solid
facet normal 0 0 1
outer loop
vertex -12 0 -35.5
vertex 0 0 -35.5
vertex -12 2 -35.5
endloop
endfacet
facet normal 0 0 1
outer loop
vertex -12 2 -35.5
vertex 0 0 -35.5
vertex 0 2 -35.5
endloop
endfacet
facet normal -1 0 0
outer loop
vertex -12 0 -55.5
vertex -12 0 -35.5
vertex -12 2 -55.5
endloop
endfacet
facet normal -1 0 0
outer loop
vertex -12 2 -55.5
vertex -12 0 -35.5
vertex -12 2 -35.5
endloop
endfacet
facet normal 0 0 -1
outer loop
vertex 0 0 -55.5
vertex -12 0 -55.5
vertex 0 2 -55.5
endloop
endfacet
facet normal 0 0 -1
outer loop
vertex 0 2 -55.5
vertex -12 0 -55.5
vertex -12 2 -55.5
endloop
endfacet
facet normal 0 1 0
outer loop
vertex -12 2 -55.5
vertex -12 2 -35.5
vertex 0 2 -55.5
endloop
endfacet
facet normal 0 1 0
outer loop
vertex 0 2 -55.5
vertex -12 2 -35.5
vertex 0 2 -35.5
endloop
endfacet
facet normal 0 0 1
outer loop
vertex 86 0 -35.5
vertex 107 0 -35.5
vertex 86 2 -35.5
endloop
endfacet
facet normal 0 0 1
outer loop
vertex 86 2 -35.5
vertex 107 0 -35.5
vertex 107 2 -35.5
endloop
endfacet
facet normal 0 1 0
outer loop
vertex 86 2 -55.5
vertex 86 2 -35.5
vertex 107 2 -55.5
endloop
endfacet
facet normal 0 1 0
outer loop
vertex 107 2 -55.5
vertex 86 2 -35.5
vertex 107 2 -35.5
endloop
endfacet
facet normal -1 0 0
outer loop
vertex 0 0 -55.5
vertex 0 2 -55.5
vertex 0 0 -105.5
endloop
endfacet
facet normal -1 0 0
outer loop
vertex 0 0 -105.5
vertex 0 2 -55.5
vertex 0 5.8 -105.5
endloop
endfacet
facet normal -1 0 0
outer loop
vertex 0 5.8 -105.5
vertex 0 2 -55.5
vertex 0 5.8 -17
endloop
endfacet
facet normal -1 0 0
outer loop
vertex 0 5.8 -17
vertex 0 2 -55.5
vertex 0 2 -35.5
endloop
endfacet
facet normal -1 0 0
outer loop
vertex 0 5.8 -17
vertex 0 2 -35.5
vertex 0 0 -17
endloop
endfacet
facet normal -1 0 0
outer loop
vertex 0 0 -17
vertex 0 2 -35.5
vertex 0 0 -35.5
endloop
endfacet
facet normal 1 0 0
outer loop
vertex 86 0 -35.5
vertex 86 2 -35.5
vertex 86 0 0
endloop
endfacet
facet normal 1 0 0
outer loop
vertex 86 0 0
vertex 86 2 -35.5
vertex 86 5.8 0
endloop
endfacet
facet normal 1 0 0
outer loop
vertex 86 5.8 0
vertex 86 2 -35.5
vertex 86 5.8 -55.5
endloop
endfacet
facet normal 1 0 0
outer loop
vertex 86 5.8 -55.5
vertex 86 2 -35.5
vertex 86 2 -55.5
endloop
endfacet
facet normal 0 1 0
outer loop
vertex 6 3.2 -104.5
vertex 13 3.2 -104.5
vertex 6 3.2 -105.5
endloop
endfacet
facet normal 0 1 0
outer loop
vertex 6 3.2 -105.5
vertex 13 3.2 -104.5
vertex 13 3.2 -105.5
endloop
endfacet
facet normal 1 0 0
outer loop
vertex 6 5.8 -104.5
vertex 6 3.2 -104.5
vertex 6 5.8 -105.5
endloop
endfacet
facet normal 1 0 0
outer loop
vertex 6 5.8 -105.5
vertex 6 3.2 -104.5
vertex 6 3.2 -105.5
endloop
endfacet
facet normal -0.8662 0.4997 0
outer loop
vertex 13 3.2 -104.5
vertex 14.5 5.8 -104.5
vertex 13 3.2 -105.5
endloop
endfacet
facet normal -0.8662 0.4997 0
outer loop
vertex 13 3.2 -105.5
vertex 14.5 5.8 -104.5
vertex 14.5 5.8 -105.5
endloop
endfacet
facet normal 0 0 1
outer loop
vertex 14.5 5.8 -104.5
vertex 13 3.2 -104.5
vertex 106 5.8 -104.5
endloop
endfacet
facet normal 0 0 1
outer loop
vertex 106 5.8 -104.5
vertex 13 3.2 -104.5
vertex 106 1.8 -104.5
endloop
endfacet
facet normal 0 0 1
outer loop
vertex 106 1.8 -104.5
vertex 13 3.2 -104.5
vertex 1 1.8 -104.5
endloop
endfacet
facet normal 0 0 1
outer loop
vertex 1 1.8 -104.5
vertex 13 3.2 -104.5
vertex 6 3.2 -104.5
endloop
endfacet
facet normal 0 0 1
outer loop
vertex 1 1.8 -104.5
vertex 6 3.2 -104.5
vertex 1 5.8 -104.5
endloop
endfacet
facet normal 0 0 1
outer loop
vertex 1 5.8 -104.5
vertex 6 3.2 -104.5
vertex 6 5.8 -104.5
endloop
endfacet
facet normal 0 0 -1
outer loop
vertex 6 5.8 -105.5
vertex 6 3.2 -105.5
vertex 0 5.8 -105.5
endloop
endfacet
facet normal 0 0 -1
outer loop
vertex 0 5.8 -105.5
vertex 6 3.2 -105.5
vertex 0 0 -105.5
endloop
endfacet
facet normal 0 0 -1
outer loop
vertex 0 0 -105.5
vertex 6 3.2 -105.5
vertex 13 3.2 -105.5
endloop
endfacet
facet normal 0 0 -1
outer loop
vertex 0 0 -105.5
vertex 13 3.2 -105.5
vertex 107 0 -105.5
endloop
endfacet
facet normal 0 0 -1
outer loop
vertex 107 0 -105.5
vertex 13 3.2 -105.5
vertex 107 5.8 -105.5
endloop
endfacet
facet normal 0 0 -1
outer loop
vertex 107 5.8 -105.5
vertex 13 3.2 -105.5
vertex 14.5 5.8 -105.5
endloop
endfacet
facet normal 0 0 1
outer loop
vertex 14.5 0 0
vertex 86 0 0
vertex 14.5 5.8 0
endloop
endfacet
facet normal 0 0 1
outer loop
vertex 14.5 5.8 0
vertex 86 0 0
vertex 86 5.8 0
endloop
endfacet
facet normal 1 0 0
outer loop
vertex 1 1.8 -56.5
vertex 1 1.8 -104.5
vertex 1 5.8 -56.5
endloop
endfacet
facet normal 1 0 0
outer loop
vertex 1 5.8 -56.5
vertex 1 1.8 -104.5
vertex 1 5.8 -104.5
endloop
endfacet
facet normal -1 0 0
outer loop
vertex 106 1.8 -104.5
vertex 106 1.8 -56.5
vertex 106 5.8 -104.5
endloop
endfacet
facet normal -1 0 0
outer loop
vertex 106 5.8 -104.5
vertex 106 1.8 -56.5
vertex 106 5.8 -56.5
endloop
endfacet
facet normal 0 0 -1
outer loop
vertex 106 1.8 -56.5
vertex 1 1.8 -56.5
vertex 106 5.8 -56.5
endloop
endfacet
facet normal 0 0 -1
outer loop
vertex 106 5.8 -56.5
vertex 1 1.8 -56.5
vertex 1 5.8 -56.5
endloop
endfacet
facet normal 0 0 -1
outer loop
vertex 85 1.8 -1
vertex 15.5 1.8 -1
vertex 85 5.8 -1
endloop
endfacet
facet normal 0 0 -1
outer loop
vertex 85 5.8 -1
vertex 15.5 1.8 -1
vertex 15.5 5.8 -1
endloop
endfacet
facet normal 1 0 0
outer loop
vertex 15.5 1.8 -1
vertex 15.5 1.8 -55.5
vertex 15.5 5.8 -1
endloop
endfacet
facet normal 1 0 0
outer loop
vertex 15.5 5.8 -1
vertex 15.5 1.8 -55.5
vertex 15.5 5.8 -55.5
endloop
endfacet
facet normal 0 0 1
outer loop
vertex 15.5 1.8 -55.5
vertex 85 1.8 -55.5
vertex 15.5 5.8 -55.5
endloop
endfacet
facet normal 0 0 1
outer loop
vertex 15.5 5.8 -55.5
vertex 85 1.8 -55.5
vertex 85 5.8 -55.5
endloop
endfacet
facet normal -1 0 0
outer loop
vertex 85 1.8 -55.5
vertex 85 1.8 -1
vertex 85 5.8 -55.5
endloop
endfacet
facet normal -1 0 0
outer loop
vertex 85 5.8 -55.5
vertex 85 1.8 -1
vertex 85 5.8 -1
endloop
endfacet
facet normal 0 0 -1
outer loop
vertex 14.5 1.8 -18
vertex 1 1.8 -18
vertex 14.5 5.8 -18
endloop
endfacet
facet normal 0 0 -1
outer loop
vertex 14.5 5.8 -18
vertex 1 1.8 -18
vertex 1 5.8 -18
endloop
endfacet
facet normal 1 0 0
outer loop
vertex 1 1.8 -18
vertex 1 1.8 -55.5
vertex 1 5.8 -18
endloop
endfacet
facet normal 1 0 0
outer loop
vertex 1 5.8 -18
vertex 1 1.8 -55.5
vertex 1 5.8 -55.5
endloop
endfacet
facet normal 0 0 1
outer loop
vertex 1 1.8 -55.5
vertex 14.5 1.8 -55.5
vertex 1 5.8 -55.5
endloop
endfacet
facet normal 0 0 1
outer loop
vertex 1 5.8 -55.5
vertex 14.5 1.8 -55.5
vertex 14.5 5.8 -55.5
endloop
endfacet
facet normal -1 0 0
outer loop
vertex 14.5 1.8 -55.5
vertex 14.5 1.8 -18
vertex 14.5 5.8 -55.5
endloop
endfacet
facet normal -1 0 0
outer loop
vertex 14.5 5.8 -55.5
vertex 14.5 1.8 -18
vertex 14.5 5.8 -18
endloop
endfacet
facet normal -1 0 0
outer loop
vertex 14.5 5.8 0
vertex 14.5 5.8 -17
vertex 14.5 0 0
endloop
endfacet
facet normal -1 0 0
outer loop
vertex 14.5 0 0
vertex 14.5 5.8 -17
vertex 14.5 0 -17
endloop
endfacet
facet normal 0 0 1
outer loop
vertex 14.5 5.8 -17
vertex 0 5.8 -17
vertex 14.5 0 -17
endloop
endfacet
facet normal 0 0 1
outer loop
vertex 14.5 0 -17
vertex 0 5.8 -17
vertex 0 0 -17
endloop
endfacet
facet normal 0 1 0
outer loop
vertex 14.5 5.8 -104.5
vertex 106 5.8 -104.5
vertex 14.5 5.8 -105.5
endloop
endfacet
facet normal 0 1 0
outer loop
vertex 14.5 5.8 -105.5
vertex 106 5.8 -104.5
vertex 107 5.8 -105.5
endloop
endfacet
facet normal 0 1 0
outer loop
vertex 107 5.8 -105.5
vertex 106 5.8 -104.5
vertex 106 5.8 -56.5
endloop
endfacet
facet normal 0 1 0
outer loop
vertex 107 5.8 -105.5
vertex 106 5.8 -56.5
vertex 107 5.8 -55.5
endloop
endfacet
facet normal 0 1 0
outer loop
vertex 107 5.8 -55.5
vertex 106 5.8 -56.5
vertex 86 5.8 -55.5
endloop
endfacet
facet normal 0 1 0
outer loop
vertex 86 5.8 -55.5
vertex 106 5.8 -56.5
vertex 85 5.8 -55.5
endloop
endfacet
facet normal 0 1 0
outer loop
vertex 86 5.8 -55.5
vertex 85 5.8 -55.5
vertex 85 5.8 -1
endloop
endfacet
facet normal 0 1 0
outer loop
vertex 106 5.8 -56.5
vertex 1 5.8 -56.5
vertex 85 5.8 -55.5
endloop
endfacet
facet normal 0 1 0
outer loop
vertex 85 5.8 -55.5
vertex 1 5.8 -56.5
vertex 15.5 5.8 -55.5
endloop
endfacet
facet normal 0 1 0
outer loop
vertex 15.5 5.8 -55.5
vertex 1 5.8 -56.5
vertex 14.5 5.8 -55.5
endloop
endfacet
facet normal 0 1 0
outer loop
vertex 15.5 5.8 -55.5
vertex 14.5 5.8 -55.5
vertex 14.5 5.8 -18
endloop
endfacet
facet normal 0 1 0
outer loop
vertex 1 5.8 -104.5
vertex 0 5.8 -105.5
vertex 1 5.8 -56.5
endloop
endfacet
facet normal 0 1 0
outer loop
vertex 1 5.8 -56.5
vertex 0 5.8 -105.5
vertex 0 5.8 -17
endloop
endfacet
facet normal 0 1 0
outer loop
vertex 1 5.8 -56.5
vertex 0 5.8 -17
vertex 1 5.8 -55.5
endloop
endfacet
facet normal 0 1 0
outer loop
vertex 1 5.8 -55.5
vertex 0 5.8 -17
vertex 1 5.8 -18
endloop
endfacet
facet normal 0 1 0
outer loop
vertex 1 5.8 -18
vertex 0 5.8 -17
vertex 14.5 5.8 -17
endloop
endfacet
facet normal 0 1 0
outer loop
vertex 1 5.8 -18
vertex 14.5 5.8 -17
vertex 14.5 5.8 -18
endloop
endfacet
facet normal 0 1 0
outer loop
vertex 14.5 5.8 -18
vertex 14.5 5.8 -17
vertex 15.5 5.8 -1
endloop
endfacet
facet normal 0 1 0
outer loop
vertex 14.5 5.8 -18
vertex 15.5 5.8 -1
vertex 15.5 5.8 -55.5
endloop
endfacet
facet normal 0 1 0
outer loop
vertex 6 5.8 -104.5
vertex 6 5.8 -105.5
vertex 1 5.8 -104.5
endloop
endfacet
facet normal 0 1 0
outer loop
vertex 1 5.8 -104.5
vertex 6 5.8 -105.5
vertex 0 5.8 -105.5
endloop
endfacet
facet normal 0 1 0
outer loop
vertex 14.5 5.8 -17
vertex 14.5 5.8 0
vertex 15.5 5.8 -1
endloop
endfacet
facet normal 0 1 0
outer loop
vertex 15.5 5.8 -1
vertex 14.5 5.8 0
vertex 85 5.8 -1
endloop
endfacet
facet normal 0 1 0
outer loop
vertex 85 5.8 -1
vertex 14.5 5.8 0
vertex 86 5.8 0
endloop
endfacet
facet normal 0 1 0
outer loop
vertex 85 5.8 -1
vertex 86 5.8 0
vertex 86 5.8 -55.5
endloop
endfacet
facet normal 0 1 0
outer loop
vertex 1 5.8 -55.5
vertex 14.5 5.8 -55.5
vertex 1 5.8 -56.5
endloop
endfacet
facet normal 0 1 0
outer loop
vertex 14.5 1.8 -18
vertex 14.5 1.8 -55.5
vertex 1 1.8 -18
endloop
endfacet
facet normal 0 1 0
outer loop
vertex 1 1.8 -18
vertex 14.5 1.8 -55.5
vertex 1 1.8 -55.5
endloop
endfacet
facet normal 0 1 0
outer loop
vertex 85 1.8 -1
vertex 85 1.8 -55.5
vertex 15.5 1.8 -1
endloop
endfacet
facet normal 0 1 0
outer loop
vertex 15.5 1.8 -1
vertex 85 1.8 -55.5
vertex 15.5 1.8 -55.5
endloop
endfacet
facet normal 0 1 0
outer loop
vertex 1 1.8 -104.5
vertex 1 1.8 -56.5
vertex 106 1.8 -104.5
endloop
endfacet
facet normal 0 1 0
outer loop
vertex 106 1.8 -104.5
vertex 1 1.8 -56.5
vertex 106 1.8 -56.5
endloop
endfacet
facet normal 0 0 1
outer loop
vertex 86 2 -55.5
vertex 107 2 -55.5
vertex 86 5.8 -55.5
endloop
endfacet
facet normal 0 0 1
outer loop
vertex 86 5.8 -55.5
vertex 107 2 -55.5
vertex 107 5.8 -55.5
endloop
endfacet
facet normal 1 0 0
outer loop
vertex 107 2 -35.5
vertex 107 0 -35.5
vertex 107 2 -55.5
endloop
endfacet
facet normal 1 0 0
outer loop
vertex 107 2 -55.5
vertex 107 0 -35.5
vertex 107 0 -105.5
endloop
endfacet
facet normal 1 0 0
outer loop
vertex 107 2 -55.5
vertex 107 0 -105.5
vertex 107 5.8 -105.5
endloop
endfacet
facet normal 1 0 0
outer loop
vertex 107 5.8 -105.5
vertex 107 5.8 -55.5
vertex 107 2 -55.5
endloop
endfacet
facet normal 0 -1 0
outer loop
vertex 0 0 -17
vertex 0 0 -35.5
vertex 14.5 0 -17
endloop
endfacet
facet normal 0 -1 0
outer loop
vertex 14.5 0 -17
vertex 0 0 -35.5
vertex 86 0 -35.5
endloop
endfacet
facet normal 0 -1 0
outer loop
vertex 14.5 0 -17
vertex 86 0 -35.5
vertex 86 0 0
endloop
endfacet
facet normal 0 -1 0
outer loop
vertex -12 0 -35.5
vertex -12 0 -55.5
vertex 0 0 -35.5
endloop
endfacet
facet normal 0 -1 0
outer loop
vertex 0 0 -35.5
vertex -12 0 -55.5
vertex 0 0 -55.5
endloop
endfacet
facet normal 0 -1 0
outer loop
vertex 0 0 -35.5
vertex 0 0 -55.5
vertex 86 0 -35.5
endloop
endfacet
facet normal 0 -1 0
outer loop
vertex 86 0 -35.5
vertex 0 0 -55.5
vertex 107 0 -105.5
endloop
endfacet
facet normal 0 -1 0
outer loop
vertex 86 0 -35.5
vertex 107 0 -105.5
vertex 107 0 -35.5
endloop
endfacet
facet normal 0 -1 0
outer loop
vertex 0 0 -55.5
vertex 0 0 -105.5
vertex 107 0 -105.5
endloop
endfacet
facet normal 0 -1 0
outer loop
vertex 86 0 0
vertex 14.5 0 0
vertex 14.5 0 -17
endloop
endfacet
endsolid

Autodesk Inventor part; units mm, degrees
sketch "Náčrt1" plane through (0, 0, 0) normal (0, 1, 0) x (-1, 0, 0)
  line L0 (0, 0) -> (-86, 0)
  line L1 (-86, 0) -> (-86, -55.5)
  line L2 (-86, -55.5) -> (0, -55.5)
  line L3 (0, -55.5) -> (0, 0)
  line L4 (0, -55.5) -> (0, -105.5)
  line L5 (0, -105.5) -> (-107, -105.5)
  line L6 (-107, -105.5) -> (-107, -55.5)
  line L7 (-107, -55.5) -> (-86, -55.5)
  dimension "d0" = 86
  dimension "d1" = 55.5
  dimension "d2" = 90
  dimension "d3" = 50
  dimension "d4" = 107
extrude "Vysunutí1" add sketch "Náčrt1" along normal blind 1.8
sketch "Náčrt2" plane through (0, 1.8, 0) normal (0, 1, 0) x (1, 0, 0)
  line L0 (107, 105.5) -> (0, 105.5) projected
  line L1 (107, 55.5) -> (107, 105.5) projected
  line L2 (86, 55.5) -> (107, 55.5) projected
  line L3 (86, 0) -> (86, 55.5) projected
  line L4 (0, 0) -> (86, 0) projected
  line L5 (0, 105.5) -> (0, 0) projected
  line L6 (85, 1) -> (85, 55.5)
  line L7 (14.5, 55.5) -> (14.5, 0)
  line L8 (15.5, 55.5) -> (85, 55.5)
  line L9 (1, 56.5) -> (106, 56.5)
  line L10 (1, 56.5) -> (1, 104.5)
  line L11 (1, 104.5) -> (106, 104.5)
  line L12 (106, 104.5) -> (106, 56.5)
  line L13 (15.5, 1) -> (85, 1)
  line L14 (15.5, 55.5) -> (15.5, 1)
  line L15 (14.5, 55.5) -> (1, 55.5)
  line L16 (1, 55.5) -> (1, 18)
  line L17 (1, 18) -> (14.5, 18)
  line L18 (0, 17) -> (14.5, 17)
  dimension "d21" = 14.5
  dimension "d22" = 1
  dimension "d23" = 1
  dimension "d24" = 48
  dimension "d25" = 105
  dimension "d28" = 1
  dimension "d29" = 37.5
  dimension "d30" = 1
  dimension "d31" = 1
  dimension "d45" = 1
  dimension "d46" = 1
  dimension "d47" = 1
  dimension "d48" = 54.5
  dimension "d49" = 1
  dimension "d50" = 1
  dimension "d51" = 69.5
extrude "Vysunutí3" add sketch "Náčrt2" along normal blind 4 contours L1 L2 L3 L4 L7 L18 L5 L0
sketch "Náčrt3" plane through (0, 1.8, 0) normal (0, 1, 0) x (1, 0, 0)
  line L0 (14.5, 17) -> (0, 17) projected
  line L1 (0, 17) -> (0, 0) projected
  line L2 (0, 0) -> (14.5, 0) projected
  line L3 (14.5, 0) -> (14.5, 17) projected
extrude "Vysunutí4" cut sketch "Náčrt3" against normal blind 4
sketch "Náčrt4" plane through (107, 0, -105.5) normal (0, 0, -1) x (-1, 0, 0)
  line L0 (101, 3.2) -> (94, 3.2)
  line L1 (101, 3.2) -> (101, 5.8)
  line L2 (101, 3.2) -> (103.6, 3.2) construction
  line L3 (94, 5.8) -> (94, 3.2)
  line L4 (0, 5.8) -> (107, 5.8) projected
  line L5 (107, 0) -> (107, 5.8) projected
  line L6 (106, 5.8) -> (92.5, 5.8) projected
  line L7 (101, 5.8) -> (92.5, 5.8)
  dimension "d37" = 7
  dimension "d39" = 90
  dimension "d41" = 6
  dimension "d42" = 3.6
sketch "Náčrt4 outline for Vysunutí5" plane through (107, 0, -105.5) normal (0, 0, -1) x (-1, 0, 0)
  line L0 (94, 3.2) -> (101, 3.2)
  line L1 (92.5, 5.8) -> (94, 3.2)
  line L2 (101, 5.8) -> (92.5, 5.8)
  line L3 (101, 3.2) -> (101, 5.8)
extrude "Vysunutí5" cut sketch "Náčrt4 outline for Vysunutí5" against normal blind 4
sketch "Sketch5" plane through (0, 0, 0) normal (0, 1, 0) x (-1, 0, 0)
  line L0 (-86, -55.5) -> (-107, -55.5) projected
  line L1 (-107, -55.5) -> (-107, -35.5)
  line L2 (-107, -35.5) -> (-86, -35.5)
  line L3 (-86, 0) -> (-86, -55.5) projected
  line L4 (0, -105.5) -> (0, -17) projected
  line L5 (0, -55.5) -> (12, -55.5)
  line L6 (12, -55.5) -> (12, -35.5)
  line L7 (12, -35.5) -> (0, -35.5)
  line L8 (0, -35.5) -> (0, -55.5)
  line L9 (-1, -55.5) -> (-14.5, -55.5) projected
  line L10 (0, -17) -> (-14.5, -17) projected
  point P0 (0, 0)
  dimension "d52" = 20
  dimension "d53" = 12
  dimension "d54" = 20
  dimension "d55" = 18.5
extrude "Extrusion6" add sketch "Sketch5" along normal blind 2
properties part number "Entrance_System"
